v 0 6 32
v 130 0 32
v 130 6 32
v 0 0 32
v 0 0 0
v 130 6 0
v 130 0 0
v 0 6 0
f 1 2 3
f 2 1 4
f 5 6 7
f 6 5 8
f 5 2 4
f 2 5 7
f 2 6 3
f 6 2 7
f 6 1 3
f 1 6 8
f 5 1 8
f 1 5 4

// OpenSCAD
//measurements for the USB "iLEPO" power supply
powerW=130;
powerD=6;
powerH=32;
color([1,1,1]) cube([powerW,powerD,powerH]);

//need to create a structure to place the USB hub and pi cluster on this power hub
// first build structure over this.
// this has rounded corners take that into account by building with cylinders and hull
// then build USB hub structure that fits on to this
// then add mounting pins to top of overall strucute for the piZero mounting brackets
// potentially add hood for cluster to make it less of a dust collector (optional)
// print in white as USB power supply is white.
// make it a super structure that goes over as opposed to a case.
// potentially use algorithmic cutouts
